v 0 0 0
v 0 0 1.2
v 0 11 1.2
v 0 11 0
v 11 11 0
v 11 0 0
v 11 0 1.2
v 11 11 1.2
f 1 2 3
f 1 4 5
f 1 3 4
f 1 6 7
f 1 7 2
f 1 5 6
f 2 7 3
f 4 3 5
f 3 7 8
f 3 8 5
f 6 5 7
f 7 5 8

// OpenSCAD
/* Warning, this is a very basic generator with a lot of approximation 
input data : [TFBGA, BAB, 11x11x1.2mm, 196, , A, C04-21141A]
generated by com.zoubworld.electronics.cad.model3d.Basic
Date : Sun Feb 15 10:50:49 CET 2026
*/

//body
color("black")
translate([0,0,0])
cube([11.0,11.0,1.2], center=false);
